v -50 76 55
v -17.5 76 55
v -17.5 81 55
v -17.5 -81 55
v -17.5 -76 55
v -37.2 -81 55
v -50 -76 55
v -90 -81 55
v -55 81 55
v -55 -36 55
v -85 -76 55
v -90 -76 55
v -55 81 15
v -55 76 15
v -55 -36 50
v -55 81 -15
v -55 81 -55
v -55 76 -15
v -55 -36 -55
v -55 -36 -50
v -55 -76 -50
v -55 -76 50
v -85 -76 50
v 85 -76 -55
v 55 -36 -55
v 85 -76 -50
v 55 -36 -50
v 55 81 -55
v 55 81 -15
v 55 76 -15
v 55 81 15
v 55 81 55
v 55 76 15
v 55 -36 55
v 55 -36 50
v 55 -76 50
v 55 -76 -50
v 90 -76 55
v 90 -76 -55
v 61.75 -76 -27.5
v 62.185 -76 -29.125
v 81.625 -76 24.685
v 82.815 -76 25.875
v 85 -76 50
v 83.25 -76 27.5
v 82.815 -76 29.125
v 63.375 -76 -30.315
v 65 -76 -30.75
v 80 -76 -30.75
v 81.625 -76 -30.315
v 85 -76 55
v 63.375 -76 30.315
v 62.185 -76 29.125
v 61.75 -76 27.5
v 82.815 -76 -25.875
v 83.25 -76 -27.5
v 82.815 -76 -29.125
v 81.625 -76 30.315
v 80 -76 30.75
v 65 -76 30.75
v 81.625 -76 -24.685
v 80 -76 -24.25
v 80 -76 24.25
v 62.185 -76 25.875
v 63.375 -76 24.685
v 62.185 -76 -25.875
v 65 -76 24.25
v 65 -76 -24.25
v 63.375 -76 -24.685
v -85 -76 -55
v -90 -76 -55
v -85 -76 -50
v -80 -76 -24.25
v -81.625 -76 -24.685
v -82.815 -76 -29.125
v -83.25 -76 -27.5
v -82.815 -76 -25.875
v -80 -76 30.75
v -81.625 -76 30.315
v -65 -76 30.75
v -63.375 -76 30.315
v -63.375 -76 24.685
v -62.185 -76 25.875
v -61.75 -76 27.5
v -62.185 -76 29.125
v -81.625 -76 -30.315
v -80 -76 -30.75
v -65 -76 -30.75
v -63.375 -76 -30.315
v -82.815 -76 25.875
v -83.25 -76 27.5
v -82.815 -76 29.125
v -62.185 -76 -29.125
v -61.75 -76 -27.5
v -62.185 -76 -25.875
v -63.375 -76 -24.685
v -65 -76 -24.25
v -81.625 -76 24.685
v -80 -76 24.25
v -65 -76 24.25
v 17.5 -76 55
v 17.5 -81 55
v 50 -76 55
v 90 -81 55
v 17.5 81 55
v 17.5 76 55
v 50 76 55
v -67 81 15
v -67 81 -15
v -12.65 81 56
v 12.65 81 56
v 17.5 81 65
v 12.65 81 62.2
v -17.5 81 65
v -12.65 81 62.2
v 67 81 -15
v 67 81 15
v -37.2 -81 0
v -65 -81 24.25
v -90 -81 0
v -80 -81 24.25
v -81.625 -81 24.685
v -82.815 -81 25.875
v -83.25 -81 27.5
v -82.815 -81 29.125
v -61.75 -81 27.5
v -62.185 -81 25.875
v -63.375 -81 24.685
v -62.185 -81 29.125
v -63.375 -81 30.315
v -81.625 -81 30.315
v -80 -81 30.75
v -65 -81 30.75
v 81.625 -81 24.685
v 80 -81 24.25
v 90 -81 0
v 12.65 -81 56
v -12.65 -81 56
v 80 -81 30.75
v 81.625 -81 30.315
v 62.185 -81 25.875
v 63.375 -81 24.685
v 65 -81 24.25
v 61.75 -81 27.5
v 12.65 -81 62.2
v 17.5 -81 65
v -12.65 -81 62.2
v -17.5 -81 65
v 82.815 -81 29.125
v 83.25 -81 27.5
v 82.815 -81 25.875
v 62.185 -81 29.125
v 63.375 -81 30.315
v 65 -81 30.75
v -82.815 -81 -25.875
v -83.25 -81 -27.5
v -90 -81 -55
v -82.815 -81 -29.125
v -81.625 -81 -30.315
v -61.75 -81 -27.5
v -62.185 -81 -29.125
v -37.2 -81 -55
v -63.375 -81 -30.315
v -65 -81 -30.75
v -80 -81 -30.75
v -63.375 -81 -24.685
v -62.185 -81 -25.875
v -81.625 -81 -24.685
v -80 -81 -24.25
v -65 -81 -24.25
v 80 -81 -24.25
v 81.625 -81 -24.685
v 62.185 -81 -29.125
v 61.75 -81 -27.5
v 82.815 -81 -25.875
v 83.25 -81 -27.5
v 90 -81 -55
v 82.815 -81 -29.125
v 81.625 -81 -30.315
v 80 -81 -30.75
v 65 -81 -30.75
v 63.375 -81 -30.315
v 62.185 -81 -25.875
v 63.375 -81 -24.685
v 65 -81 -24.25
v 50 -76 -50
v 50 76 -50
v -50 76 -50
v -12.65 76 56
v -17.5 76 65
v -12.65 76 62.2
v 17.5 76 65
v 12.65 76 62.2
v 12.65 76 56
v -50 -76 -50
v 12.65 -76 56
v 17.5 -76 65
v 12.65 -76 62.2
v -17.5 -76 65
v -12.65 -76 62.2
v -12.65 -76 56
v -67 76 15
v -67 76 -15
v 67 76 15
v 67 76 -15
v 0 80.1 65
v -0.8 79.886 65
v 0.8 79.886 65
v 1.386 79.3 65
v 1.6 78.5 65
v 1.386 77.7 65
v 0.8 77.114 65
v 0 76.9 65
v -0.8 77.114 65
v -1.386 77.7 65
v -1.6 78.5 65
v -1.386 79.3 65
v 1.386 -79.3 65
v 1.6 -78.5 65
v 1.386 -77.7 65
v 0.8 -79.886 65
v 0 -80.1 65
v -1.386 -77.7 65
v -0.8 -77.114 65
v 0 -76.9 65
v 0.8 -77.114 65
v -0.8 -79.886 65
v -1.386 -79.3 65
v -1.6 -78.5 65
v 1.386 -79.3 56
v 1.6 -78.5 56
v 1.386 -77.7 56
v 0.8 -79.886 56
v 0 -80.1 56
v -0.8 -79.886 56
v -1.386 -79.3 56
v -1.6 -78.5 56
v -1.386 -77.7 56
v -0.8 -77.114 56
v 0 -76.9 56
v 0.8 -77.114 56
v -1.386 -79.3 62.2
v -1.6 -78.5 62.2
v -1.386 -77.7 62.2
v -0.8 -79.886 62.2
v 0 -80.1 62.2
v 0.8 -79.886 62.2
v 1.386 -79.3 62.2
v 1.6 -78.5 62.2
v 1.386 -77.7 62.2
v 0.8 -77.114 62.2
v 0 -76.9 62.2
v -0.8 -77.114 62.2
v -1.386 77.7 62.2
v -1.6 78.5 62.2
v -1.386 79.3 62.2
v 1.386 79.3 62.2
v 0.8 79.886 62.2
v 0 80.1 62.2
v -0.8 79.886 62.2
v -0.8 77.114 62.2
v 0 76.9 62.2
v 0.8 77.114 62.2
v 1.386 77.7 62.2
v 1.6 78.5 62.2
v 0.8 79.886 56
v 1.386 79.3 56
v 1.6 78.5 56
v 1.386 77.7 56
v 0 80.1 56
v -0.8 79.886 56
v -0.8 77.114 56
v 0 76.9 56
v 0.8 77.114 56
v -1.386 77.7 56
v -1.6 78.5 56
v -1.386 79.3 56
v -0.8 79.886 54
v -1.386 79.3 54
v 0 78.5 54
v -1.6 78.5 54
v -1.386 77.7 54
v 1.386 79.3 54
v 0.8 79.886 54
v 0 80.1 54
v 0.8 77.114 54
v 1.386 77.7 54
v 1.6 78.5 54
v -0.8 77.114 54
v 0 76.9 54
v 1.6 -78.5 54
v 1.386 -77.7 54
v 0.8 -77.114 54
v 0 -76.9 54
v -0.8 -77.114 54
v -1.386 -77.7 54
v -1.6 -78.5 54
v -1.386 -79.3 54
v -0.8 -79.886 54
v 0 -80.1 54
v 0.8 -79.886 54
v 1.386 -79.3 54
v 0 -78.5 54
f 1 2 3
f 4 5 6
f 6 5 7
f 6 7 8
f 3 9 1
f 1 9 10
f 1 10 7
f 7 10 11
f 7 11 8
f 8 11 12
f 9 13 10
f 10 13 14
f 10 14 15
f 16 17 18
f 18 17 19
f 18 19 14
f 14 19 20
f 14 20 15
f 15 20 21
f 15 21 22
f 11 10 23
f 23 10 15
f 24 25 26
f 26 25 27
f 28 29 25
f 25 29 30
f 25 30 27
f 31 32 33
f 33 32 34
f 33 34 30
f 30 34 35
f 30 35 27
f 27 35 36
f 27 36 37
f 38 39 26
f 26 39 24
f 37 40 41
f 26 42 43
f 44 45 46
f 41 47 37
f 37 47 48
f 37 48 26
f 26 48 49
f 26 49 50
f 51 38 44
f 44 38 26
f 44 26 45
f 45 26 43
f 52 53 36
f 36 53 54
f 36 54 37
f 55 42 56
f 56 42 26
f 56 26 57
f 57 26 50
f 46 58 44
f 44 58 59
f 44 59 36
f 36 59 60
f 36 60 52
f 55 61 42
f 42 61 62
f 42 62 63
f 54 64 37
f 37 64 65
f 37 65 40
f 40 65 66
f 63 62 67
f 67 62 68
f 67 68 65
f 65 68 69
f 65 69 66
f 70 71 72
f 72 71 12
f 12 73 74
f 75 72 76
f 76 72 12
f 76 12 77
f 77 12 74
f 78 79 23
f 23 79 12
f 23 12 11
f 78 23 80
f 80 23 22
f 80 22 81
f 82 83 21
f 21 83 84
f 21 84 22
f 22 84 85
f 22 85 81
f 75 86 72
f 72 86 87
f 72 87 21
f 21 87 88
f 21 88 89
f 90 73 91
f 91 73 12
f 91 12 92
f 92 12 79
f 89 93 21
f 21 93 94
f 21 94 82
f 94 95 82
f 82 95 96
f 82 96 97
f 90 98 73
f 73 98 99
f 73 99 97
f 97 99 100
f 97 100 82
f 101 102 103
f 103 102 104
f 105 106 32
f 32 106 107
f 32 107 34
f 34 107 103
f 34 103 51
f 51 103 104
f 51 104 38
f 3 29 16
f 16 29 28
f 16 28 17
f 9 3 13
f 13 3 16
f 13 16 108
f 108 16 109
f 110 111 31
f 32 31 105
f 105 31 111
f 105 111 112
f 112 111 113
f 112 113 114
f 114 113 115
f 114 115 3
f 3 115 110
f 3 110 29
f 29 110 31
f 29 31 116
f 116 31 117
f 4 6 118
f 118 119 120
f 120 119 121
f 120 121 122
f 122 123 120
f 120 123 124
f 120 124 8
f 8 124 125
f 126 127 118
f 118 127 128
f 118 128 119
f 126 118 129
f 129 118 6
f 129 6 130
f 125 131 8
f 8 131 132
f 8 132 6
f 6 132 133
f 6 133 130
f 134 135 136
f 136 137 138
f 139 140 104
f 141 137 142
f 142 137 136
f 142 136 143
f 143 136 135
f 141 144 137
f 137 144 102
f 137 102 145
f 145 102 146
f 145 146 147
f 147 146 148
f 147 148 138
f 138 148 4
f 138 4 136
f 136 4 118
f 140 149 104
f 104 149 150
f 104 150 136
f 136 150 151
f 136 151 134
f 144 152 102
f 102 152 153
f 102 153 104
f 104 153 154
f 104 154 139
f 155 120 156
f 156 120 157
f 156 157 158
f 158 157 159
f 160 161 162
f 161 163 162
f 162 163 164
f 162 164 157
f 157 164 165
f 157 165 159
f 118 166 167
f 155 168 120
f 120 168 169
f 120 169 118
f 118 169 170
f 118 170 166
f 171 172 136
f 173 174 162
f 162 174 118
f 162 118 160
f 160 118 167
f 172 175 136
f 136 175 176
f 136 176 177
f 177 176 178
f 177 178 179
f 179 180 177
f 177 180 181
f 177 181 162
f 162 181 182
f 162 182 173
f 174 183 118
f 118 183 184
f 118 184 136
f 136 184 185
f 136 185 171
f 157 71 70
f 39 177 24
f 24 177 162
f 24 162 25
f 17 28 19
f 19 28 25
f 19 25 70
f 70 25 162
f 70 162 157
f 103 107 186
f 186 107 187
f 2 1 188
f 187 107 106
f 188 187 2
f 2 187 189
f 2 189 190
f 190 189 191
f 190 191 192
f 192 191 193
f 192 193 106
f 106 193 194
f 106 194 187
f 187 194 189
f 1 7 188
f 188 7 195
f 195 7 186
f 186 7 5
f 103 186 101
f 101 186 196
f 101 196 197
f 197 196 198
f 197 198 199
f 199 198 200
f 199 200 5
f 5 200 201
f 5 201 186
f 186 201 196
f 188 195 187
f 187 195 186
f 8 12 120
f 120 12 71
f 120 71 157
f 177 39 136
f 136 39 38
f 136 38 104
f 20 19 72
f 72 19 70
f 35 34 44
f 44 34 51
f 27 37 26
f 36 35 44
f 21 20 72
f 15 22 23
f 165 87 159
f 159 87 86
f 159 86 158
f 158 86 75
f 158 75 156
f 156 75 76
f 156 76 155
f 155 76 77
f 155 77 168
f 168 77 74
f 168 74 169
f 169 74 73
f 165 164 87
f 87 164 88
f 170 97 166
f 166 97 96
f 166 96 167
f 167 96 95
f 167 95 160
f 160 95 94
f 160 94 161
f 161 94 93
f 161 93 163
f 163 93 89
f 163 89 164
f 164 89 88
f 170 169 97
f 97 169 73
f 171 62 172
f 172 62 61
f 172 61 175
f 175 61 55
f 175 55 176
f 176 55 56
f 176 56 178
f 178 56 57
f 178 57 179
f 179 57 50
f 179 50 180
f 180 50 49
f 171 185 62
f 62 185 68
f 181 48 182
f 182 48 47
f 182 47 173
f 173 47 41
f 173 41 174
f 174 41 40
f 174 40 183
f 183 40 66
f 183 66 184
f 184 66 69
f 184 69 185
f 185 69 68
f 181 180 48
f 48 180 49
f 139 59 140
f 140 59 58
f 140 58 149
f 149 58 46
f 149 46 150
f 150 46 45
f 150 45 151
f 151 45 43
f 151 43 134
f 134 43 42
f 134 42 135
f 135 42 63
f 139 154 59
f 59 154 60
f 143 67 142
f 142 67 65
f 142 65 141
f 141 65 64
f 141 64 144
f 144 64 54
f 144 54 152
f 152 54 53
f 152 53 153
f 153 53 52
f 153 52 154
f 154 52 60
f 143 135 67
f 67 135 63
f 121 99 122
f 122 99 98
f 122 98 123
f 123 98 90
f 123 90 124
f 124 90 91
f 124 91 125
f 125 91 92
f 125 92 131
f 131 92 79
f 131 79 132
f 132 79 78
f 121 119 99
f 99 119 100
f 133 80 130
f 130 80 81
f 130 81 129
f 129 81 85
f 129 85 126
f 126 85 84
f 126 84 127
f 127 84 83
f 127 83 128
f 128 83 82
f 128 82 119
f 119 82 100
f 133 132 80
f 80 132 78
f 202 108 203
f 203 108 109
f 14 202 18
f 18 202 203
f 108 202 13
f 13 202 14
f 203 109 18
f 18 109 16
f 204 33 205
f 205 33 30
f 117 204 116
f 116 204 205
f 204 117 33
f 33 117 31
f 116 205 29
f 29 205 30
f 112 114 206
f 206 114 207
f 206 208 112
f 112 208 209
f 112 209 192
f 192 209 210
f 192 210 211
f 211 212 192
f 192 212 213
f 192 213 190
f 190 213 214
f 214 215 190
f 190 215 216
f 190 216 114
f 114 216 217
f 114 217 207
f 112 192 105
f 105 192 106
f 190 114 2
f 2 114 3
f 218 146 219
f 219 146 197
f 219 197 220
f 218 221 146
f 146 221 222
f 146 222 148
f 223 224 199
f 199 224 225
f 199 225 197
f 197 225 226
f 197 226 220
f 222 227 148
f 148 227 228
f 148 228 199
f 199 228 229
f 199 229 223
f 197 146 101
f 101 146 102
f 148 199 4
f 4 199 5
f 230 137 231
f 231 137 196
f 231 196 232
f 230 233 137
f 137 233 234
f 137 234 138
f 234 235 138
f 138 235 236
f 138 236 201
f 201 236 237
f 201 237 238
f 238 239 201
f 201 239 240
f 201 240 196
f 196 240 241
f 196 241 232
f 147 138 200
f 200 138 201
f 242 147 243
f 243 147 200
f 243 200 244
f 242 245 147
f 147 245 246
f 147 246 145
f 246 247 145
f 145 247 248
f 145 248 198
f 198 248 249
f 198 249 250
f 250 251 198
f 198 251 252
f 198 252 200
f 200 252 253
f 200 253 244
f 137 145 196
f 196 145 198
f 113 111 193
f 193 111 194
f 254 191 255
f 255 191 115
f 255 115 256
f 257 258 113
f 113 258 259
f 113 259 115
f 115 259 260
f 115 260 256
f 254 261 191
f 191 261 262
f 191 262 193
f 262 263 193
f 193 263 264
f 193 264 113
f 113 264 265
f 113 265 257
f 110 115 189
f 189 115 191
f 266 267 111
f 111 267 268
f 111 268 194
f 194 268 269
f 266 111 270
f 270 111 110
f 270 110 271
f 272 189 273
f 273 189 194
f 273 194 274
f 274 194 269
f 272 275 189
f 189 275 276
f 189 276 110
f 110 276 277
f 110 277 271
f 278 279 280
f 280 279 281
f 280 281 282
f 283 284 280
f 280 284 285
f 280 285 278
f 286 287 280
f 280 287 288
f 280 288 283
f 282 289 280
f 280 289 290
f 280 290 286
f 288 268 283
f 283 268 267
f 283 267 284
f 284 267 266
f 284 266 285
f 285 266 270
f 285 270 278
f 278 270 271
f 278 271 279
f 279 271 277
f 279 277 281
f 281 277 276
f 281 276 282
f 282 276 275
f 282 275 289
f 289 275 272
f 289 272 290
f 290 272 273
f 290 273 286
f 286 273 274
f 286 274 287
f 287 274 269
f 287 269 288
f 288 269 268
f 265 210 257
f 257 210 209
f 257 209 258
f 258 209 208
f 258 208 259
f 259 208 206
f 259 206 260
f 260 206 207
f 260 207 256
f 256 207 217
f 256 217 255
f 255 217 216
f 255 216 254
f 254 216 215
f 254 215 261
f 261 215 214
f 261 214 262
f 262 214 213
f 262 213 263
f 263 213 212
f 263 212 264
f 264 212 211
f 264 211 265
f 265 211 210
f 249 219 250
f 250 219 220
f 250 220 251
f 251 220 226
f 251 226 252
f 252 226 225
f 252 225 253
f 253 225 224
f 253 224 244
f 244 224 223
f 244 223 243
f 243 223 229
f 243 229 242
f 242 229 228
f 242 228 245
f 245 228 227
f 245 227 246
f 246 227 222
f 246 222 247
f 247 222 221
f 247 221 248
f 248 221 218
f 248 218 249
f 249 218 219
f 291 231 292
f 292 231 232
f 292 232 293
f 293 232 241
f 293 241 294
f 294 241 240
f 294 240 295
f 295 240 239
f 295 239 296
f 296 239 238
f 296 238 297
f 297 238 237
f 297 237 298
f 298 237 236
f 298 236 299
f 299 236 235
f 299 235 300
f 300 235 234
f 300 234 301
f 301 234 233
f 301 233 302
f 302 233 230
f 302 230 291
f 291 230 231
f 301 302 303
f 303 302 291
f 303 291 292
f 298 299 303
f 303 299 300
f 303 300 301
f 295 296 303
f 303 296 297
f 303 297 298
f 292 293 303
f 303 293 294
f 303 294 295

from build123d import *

# Parameters (mm, degrees)
SKETCH1_W           = 110
SKETCH1_H           = 162
BOSS_EXTRUDE1_DEPTH = 55
SHELL1_T            = -5
SKETCH2_W           = 35
SKETCH2_H           = 5
BOSS_EXTRUDE2_DEPTH = 55
BOSS_EXTRUDE3_DEPTH = 55
SKETCH12_W          = 35
SKETCH12_H          = 40
CUT_EXTRUDE5_DEPTH  = 50
CUT_EXTRUDE1_DEPTH  = 5
SKETCH6_W           = 12
SKETCH6_H           = 5
BOSS_EXTRUDE4_DEPTH = 15
SKETCH7_W           = 10
SKETCH7_H           = 5
BOSS_EXTRUDE5_DEPTH = 17.5
CUT_EXTRUDE2_START  = -162
SKETCH8_W           = 25.3
SKETCH8_H           = 6.2
CUT_EXTRUDE2_DEPTH  = 162
SKETCH9_R           = 1.6
CUT_EXTRUDE3_DEPTH  = 11


with BuildPart() as part:
    # Sketch1 → Boss-Extrude1 (new, symmetric)
    with BuildSketch(Plane.XY):
        Rectangle(SKETCH1_W, SKETCH1_H)
    extrude(amount=BOSS_EXTRUDE1_DEPTH, both=True)

    # Shell1
    shell1_openings = [part.faces().sort_by_distance(p)[0] for p in [
        (0, 0, 55),
    ]]
    offset(amount=SHELL1_T, openings=shell1_openings, kind=Kind.INTERSECTION)

    # Sketch2 → Boss-Extrude2 (add, symmetric)
    with BuildSketch(Plane.XY):
        with Locations((-72.5, -78.5)):
            Rectangle(SKETCH2_W, SKETCH2_H)
        with Locations((72.5, -78.5)):
            Rectangle(SKETCH2_W, SKETCH2_H)
    extrude(amount=BOSS_EXTRUDE2_DEPTH, both=True)

    # Sketch3 → Boss-Extrude3 (add, symmetric)
    with BuildSketch(Plane.XY):
        Polygon((-85, -76), (-55, -36), (-55, -76), align=None)
        Polygon((55, -36), (55, -76), (85, -76), align=None)
    extrude(amount=BOSS_EXTRUDE3_DEPTH, both=True)

    # Sketch12 → Cut-Extrude5 (cut, symmetric)
    with BuildSketch(Plane.XY):
        with Locations((-72.5, -56)):
            Rectangle(SKETCH12_W, SKETCH12_H)
        with Locations((72.5, -56)):
            Rectangle(SKETCH12_W, SKETCH12_H)
    extrude(amount=CUT_EXTRUDE5_DEPTH, both=True, mode=Mode.SUBTRACT)

    # Sketch5 → Cut-Extrude1 (cut)
    with BuildSketch(Plane(origin=(0, -76, 0), x_dir=(1, 0, 0), z_dir=(0, 1, 0))):
        with BuildLine():
            Line((-80, 30.75), (-65, 30.75))
            ThreePointArc((-65, 30.75), (-61.75, 27.5), (-65, 24.25))
            Line((-65, 24.25), (-80, 24.25))
            ThreePointArc((-80, 24.25), (-83.25, 27.5), (-80, 30.75))
        make_face()
        with BuildLine():
            Line((80, 30.75), (65, 30.75))
            ThreePointArc((65, 30.75), (61.75, 27.5), (65, 24.25))
            Line((65, 24.25), (80, 24.25))
            ThreePointArc((80, 24.25), (83.25, 27.5), (80, 30.75))
        make_face()
        with BuildLine():
            Line((80, -30.75), (65, -30.75))
            ThreePointArc((65, -30.75), (61.75, -27.5), (65, -24.25))
            Line((65, -24.25), (80, -24.25))
            ThreePointArc((80, -24.25), (83.25, -27.5), (80, -30.75))
        make_face()
        with BuildLine():
            Line((-80, -30.75), (-65, -30.75))
            ThreePointArc((-65, -30.75), (-61.75, -27.5), (-65, -24.25))
            Line((-65, -24.25), (-80, -24.25))
            ThreePointArc((-80, -24.25), (-83.25, -27.5), (-80, -30.75))
        make_face()
    extrude(amount=-CUT_EXTRUDE1_DEPTH, mode=Mode.SUBTRACT)

    # Sketch6 → Boss-Extrude4 (add, symmetric)
    with BuildSketch(Plane.XY):
        with Locations((-61, 78.5)):
            Rectangle(SKETCH6_W, SKETCH6_H)
        with Locations((61, 78.5)):
            Rectangle(SKETCH6_W, SKETCH6_H)
    extrude(amount=BOSS_EXTRUDE4_DEPTH, both=True)

    # Sketch7 → Boss-Extrude5 (add, symmetric)
    with BuildSketch(Plane(origin=(0, 0, 0), x_dir=(0, 0, -1), z_dir=(1, 0, 0))):
        with Locations((-60, 78.5)):
            Rectangle(SKETCH7_W, SKETCH7_H)
        with Locations((-60, -78.5)):
            Rectangle(SKETCH7_W, SKETCH7_H)
    extrude(amount=BOSS_EXTRUDE5_DEPTH, both=True)

    # Sketch8 → Cut-Extrude2 (cut)
    with BuildSketch(Plane(origin=(0, 81, 0), x_dir=(1, 0, 0), z_dir=(0, 1, 0)).offset(CUT_EXTRUDE2_START)):
        with Locations((0, -59.1)):
            Rectangle(SKETCH8_W, SKETCH8_H)
    extrude(amount=CUT_EXTRUDE2_DEPTH, mode=Mode.SUBTRACT)

    # Sketch9 → Cut-Extrude3 (cut)
    with BuildSketch(Plane.XY.offset(65)):
        with Locations((0, -78.5)):
            Circle(SKETCH9_R)
        with Locations(Location((0, 78.5, 0), (0, 0, 180))):
            Circle(SKETCH9_R)
    extrude(amount=-CUT_EXTRUDE3_DEPTH, mode=Mode.SUBTRACT)


solid = part.part
